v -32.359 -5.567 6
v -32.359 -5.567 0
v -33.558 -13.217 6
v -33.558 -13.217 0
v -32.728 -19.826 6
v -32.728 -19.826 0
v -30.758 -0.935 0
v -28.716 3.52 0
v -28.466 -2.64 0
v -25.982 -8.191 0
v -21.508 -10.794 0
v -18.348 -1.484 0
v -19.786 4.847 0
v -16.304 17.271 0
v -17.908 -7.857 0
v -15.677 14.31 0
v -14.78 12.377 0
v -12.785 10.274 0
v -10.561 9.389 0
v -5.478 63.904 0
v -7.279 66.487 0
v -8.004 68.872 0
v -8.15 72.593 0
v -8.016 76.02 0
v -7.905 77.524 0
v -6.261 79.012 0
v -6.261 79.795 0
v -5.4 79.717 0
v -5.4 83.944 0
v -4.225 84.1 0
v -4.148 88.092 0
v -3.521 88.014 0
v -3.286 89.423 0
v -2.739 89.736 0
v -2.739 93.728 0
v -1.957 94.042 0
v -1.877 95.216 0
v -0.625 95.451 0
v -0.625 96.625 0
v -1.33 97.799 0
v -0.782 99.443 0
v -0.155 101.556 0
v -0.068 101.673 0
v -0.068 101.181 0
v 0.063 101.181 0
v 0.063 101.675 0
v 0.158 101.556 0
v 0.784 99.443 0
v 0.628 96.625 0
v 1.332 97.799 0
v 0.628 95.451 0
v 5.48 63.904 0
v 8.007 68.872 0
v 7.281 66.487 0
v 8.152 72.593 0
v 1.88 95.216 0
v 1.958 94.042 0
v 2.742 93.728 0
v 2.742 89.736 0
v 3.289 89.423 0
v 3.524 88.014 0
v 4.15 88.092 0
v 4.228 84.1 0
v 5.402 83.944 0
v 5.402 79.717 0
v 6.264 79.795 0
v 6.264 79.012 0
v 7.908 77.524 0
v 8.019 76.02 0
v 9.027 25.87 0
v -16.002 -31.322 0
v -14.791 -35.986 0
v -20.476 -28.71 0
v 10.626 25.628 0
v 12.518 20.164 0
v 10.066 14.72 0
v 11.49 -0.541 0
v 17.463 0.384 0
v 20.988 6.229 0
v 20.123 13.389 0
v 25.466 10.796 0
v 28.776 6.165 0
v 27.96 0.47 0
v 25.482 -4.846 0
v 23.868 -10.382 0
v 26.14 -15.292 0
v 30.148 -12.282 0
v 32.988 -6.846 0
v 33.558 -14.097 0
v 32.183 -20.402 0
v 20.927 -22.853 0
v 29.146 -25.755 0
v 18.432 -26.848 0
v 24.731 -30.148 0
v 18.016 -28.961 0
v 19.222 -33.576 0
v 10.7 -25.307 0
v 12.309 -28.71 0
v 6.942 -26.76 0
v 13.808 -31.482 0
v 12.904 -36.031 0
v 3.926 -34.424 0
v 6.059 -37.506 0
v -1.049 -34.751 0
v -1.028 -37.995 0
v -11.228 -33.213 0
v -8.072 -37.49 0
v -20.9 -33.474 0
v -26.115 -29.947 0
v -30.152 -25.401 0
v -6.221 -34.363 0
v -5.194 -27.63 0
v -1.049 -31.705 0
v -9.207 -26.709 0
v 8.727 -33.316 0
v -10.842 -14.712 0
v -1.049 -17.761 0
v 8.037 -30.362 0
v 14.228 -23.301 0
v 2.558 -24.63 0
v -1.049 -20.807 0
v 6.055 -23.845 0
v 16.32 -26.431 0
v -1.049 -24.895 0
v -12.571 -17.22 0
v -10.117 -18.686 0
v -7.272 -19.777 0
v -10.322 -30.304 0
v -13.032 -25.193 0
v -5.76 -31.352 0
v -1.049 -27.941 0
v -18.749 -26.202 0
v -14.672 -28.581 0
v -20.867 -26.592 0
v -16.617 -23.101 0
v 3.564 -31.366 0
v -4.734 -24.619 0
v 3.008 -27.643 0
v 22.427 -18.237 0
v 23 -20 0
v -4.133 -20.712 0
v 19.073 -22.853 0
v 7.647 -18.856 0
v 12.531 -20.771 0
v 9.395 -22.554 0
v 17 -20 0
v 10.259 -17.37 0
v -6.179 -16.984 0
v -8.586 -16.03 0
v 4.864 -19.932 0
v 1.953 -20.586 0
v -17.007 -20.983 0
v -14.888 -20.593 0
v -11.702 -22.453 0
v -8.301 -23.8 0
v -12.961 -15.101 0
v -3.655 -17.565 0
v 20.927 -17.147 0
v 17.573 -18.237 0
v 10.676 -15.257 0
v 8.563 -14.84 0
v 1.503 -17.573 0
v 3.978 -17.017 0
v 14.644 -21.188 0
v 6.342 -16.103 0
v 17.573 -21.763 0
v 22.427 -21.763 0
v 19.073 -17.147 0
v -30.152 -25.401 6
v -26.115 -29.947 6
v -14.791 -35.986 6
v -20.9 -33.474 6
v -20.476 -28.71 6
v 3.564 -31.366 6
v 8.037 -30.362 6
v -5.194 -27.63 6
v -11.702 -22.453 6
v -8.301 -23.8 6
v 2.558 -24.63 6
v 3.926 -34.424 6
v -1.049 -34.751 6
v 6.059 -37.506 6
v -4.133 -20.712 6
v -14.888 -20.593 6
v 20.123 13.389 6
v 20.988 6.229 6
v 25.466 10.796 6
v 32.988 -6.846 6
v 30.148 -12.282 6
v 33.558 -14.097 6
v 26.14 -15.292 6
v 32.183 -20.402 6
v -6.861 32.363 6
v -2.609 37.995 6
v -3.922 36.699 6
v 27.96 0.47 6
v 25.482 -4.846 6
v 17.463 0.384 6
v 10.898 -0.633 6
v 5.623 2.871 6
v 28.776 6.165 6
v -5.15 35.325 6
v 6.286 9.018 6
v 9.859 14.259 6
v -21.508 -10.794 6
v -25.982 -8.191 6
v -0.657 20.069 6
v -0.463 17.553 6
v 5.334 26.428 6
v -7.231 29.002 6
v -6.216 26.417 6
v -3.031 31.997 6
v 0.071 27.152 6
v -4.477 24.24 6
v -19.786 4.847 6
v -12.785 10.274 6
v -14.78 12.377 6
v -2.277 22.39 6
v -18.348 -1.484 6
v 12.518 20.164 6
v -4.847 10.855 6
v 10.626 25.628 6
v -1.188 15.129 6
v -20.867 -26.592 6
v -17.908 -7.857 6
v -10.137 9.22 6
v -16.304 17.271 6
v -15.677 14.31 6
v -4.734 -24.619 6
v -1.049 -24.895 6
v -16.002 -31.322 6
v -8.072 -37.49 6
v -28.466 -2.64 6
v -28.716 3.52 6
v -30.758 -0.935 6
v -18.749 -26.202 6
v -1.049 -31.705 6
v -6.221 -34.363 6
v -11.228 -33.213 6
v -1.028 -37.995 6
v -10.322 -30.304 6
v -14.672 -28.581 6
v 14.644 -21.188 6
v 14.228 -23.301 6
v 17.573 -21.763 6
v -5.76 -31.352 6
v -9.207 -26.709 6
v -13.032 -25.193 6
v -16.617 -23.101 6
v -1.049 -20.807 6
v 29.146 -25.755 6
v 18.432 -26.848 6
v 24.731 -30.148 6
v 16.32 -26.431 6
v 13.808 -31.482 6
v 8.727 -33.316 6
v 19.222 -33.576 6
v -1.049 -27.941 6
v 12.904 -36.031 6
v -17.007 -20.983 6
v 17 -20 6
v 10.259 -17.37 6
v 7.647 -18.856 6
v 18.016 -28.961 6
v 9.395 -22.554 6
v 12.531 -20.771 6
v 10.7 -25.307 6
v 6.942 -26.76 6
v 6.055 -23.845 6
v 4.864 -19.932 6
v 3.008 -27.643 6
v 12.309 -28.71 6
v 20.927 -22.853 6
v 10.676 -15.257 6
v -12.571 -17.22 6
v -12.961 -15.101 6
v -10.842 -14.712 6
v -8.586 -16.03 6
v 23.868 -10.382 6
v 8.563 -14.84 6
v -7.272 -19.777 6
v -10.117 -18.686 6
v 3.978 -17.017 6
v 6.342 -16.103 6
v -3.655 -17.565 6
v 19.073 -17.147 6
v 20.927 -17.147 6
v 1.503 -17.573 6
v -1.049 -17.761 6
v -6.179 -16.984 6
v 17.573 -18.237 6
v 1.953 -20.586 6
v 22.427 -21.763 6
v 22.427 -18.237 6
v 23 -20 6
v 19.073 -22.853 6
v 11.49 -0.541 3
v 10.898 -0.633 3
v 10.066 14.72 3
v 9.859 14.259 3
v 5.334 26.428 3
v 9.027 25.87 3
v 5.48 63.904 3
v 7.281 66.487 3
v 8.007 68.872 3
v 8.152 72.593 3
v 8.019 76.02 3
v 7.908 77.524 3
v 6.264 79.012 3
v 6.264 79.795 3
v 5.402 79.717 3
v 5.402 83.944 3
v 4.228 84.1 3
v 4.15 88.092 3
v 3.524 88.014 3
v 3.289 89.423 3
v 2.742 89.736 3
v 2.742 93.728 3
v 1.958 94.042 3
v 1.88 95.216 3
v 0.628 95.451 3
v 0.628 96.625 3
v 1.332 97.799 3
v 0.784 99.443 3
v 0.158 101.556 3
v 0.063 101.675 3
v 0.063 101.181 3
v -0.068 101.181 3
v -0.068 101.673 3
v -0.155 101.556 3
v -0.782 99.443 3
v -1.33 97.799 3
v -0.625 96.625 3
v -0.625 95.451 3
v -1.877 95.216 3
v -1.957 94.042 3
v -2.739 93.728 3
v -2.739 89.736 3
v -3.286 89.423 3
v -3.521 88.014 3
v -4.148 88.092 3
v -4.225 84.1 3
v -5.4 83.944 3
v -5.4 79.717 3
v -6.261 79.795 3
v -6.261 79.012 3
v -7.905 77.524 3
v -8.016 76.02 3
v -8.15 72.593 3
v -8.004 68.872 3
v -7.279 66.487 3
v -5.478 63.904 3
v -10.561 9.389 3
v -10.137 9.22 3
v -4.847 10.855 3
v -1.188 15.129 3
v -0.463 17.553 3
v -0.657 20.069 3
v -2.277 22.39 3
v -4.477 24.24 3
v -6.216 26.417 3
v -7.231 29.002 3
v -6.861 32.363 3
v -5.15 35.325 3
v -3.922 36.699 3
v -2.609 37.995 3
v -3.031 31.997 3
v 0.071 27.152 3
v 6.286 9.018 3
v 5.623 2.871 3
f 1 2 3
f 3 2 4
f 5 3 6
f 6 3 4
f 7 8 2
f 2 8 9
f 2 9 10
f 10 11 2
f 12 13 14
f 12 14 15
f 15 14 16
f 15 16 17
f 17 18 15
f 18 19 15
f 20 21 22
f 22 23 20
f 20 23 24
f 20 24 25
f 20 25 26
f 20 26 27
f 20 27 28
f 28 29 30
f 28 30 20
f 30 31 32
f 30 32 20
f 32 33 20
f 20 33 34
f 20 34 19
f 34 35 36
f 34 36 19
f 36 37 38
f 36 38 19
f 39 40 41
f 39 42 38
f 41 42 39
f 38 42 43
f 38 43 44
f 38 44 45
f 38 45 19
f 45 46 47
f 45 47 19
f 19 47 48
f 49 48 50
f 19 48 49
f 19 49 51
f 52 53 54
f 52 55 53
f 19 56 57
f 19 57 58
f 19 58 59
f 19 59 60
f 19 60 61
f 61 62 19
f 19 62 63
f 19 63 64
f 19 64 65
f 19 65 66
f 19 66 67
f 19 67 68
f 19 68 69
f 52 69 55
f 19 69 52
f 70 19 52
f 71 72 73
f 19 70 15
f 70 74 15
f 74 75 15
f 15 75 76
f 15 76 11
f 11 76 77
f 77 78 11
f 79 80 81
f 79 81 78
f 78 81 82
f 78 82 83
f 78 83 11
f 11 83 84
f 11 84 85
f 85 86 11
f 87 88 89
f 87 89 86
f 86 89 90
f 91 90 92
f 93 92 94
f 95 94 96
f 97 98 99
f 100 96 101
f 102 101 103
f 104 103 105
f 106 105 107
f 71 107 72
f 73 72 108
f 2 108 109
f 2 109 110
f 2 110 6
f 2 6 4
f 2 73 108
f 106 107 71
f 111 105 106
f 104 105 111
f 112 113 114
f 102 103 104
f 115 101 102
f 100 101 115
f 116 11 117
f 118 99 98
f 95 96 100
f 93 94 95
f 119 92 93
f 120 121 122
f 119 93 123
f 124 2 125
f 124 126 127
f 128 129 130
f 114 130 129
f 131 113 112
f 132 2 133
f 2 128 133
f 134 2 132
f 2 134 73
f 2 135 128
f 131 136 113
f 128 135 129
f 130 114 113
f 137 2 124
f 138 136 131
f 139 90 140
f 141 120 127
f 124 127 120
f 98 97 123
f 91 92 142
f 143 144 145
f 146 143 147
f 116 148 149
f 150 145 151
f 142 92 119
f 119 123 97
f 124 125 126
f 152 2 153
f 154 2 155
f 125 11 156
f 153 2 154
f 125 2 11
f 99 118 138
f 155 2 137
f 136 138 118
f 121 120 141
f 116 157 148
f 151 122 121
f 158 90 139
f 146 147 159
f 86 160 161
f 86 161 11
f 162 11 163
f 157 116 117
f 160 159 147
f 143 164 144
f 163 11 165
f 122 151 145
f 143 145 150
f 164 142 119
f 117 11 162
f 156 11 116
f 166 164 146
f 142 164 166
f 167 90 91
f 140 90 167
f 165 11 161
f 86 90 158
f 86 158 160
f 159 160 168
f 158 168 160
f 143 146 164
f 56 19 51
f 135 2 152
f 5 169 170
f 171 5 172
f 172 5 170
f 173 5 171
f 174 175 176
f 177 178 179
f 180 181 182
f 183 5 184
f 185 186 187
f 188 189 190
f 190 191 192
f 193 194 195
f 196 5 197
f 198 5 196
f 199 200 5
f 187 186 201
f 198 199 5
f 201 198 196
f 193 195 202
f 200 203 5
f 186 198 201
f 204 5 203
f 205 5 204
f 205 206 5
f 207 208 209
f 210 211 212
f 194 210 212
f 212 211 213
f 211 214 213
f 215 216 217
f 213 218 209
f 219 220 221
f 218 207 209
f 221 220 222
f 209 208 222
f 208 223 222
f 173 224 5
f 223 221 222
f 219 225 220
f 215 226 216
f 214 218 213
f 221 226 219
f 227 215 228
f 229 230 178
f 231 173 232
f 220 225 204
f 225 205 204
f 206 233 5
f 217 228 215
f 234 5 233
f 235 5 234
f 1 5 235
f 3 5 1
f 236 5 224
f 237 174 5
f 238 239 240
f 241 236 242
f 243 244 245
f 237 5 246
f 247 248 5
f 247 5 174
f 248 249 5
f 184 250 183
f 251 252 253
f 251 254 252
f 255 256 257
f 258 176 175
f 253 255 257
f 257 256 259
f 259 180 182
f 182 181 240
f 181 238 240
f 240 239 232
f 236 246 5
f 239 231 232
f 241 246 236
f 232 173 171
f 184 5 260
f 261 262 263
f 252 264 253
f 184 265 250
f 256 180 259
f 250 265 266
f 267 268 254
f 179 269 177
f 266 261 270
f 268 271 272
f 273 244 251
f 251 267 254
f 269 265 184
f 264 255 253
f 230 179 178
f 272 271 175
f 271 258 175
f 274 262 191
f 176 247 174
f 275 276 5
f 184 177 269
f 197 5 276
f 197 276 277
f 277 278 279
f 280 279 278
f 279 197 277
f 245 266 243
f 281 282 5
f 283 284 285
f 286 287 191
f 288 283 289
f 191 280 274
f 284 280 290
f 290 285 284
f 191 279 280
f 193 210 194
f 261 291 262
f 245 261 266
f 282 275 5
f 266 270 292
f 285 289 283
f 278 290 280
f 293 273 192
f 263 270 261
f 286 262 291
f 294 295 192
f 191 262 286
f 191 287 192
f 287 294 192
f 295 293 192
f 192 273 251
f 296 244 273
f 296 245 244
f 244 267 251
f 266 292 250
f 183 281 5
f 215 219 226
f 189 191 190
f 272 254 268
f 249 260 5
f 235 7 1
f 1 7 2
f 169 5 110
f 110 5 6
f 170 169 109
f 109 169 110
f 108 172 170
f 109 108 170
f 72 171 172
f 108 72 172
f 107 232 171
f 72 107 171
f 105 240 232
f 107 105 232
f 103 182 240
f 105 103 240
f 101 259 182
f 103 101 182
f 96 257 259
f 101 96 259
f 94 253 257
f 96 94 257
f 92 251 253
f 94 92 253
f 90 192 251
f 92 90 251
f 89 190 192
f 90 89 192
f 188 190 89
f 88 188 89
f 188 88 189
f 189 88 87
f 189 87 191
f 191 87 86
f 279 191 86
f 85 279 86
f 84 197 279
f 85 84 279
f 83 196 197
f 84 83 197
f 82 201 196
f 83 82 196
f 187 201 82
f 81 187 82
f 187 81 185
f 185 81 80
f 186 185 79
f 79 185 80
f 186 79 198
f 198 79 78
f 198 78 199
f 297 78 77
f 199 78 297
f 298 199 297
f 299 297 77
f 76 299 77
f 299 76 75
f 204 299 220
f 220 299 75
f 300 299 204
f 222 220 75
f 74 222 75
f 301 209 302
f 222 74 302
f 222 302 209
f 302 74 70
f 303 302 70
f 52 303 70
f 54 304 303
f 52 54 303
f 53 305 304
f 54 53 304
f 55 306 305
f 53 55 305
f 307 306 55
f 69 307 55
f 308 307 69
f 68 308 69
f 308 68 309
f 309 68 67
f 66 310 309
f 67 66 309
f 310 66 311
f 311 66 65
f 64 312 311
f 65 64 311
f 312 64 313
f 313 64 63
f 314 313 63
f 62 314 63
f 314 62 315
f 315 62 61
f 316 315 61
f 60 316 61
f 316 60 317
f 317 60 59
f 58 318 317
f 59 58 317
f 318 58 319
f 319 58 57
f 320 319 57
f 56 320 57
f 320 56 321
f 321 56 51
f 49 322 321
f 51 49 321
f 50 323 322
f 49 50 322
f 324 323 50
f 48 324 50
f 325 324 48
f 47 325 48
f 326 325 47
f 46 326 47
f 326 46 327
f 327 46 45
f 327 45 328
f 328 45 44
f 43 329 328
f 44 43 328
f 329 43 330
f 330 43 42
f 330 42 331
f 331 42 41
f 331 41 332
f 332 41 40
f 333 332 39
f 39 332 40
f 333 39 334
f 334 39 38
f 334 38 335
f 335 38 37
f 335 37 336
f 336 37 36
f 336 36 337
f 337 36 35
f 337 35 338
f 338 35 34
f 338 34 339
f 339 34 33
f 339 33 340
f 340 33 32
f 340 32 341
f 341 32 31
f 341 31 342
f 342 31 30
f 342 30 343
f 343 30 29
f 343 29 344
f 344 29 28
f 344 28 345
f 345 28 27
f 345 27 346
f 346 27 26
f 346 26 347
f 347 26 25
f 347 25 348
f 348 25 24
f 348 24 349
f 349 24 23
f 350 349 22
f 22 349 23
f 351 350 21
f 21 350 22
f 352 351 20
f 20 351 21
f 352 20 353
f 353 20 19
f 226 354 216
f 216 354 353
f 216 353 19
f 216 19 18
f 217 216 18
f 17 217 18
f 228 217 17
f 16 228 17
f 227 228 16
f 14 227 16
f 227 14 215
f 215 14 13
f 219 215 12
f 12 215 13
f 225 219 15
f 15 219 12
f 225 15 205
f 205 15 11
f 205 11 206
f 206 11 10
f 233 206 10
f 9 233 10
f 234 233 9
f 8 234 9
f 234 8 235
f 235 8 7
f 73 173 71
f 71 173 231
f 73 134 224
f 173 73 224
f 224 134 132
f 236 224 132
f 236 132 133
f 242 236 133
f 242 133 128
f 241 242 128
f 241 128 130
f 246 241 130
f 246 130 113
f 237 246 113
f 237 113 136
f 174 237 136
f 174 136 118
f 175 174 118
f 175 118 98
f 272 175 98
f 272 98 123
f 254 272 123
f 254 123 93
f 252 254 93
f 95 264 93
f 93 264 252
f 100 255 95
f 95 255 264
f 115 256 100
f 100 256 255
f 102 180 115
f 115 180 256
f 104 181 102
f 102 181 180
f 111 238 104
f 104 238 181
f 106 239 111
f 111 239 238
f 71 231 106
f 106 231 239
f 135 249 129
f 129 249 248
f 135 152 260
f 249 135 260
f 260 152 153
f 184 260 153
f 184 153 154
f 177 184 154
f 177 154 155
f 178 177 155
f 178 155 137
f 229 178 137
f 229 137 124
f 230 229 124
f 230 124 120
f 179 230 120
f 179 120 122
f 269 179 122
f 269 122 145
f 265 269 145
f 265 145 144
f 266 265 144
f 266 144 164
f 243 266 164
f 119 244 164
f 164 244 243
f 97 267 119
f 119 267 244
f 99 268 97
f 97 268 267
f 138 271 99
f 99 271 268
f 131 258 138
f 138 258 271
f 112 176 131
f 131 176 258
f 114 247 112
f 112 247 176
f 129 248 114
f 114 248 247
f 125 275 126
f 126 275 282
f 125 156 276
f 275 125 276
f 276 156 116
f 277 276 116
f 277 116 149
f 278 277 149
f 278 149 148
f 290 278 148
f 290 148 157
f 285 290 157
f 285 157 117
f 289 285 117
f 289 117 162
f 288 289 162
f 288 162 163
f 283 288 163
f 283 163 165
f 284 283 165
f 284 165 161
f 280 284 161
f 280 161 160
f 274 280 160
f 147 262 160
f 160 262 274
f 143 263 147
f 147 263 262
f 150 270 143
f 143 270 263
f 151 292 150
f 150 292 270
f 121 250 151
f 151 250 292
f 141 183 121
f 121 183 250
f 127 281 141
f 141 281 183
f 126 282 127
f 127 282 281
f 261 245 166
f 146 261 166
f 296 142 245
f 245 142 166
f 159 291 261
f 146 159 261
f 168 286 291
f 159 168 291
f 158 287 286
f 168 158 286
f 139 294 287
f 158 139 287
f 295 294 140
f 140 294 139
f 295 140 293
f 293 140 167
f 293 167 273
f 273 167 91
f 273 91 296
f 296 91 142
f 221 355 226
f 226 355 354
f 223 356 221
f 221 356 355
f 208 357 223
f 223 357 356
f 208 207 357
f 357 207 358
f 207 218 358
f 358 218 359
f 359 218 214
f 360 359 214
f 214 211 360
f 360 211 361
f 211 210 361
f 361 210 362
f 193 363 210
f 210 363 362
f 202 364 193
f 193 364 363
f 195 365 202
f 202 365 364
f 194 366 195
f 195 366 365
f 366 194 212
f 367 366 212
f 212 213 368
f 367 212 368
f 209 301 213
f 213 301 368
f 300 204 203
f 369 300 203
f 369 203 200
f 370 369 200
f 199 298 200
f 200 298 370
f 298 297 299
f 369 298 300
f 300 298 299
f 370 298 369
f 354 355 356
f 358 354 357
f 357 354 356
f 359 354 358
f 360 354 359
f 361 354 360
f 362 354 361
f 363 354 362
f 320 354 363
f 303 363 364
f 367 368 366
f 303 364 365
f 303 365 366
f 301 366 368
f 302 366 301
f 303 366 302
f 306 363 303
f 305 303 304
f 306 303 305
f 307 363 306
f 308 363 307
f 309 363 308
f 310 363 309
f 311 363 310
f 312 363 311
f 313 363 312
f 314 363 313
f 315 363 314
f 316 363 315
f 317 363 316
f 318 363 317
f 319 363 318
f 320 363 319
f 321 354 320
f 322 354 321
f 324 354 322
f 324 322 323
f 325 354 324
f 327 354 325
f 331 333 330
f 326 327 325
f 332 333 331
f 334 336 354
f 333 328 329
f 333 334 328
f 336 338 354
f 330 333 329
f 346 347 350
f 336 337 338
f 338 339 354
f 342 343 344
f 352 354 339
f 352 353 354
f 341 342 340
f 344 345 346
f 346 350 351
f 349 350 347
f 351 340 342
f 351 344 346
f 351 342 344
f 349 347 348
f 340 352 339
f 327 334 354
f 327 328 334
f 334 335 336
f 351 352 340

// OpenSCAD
// Module names are of the form poly_<inkscape-path-id>().  As a result,
// you can associate a polygon in this OpenSCAD program with the corresponding
// SVG element in the Inkscape document by looking for the XML element with
// the attribute id="inkscape-path-id".

// fudge value is used to ensure that subtracted solids are a tad taller
// in the z dimension than the polygon being subtracted from.  This helps
// keep the resulting .stl file manifold.
fudge = 0.1;

module flame(h)
{
  scale([25.4/90, -25.4/90, 1]) union()
  {
    difference()
    {
       linear_extrude(height=h)
         polygon([[116.885926,24.259297],[106.823426,43.519297],[92.620926,54.185547],[84.571707,36.785391],[90.289676,17.171797],[99.072019,-1.666328],[101.962176,-21.843203],[90.232019,-38.254616],[71.300926,-47.440703],[74.367957,-22.072578],[61.877176,-1.361953],[38.614207,2.243203],[19.923426,-10.174453],[22.271707,-31.953353],[34.933426,-50.523203],[44.353582,-71.445703],[37.653426,-90.808203],[18.900613,-93.642266],[0.250926,-96.208203],[-10.739699,-113.375853],[-9.242824,-134.628203],[-13.896262,-130.035853],[-18.247824,-125.166953],[-24.309231,-114.670853],[-25.620324,-102.761953],[-22.025012,-93.603516],[-15.862824,-85.890703],[-8.068762,-79.333666],[-2.327824,-71.110703],[-1.640324,-62.196641],[-4.207824,-53.606953],[-17.174543,-38.462416],[-35.919074,-32.669453],[-45.300012,-36.404453],[-52.369074,-43.855703],[-55.547981,-50.702728],[-57.771574,-61.195703],[-70.107824,-17.175703],[-65.013287,5.258359],[-63.454074,27.840547],[-76.209537,38.247578],[-92.061574,29.024297],[-100.862349,9.354922],[-101.747824,-12.474453],[-108.985012,3.313672],[-114.656574,19.724297],[-118.906637,46.832397],[-115.965349,70.250408],[-106.838824,90.002643],[-92.533174,106.113418],[-74.054487,118.607047],[-52.408874,127.507844],[-28.602431,132.840124],[-3.641262,134.628203],[21.468529,132.896393],[45.720843,127.669011],[68.109574,118.970371],[87.628621,106.824785],[103.271882,91.256571],[114.033254,72.290042],[118.906637,49.949512]]);
       translate([0, 0, -fudge])
         linear_extrude(height=h+2*fudge)
           polygon([[63.834676,102.616797],[48.924734,111.549099],[30.922081,118.047321],[13.911339,121.974062],[-3.716574,123.134297],[-22.041574,121.759043],[-39.783449,117.683203],[-56.701262,110.981660],[-72.554074,101.729297],[-73.939074,94.223047],[-66.431574,92.841797],[-51.988214,101.270547],[-36.575012,107.375234],[-20.411339,111.087891],[-3.716574,112.340547],[12.627293,111.139922],[28.475926,107.581484],[43.613933,101.730391],[57.825926,93.651797],[65.312176,95.129297]]);
       translate([0, 0, -fudge])
         linear_extrude(height=h+2*fudge)
           polygon([[-60.260324,74.349297],[-52.754074,72.966797],[-41.464192,79.557031],[-29.413762,84.329922],[-16.774113,87.232499],[-3.716574,88.211797],[9.062167,87.272792],[21.453923,84.489969],[33.289804,79.914624],[44.400926,73.598047],[51.888426,75.076797],[50.414676,82.563047],[37.912644,89.670312],[24.596863,94.817734],[10.657176,97.948125],[-3.716574,99.004297],[-18.403352,97.902422],[-32.621731,94.636797],[-46.178469,89.267422],[-58.880324,81.854297],[-60.260324,74.349297]]);
       translate([0, 0, -fudge])
         linear_extrude(height=h+2*fudge)
           polygon([[-45.924074,53.508047],[-38.416574,52.128047],[-30.421964,56.797734],[-21.892512,60.180234],[-12.950091,62.237578],[-3.716574,62.931797],[5.324441,62.267032],[14.094051,60.296797],[22.472723,57.057188],[30.340926,52.584297],[37.828426,54.060547],[36.352176,61.548047],[27.093978,66.812282],[17.236208,70.624798],[6.919234,72.943313],[-3.716574,73.725547],[-14.645933,73.388617],[-25.767133,70.076664],[-35.848676,66.212362],[-44.544074,61.014297]]);
    }
  }
}

module tower(h)
{
  scale([25.4/90, -25.4/90, 1]) union()
  {
    linear_extrude(height=h)
      polygon([[44.381250,200.725625],[19.417500,-66.984375],[25.800000,-76.135625],[28.370489,-84.586725],[28.886094,-97.770313],[28.413340,-109.913750],[28.018750,-115.244375],[22.196250,-120.515625],[22.196250,-123.288125],[19.142500,-123.011875],[19.142500,-137.990625],[14.981250,-138.543125],[14.706250,-152.689375],[12.486250,-152.413125],[11.653750,-157.404375],[9.715000,-158.514375],[9.715000,-172.659375],[6.937500,-173.769375],[6.661250,-177.929375],[2.223750,-178.763125],[2.223750,-182.923125],[4.721250,-187.084375],[2.777500,-192.908125],[0.560000,-200.396875],[0.223750,-200.815625],[0.223750,-199.068125],[-0.240000,-199.068125],[-0.240000,-200.810625],[-0.550000,-200.396875],[-2.771250,-192.908125],[-4.711250,-187.084375],[-2.213750,-182.923125],[-2.213750,-178.763125],[-6.651250,-177.929375],[-6.932500,-173.769375],[-9.706250,-172.659375],[-9.706250,-158.514375],[-11.643750,-157.404375],[-12.476250,-152.413125],[-14.696250,-152.689375],[-14.971250,-138.543125],[-19.132500,-137.990625],[-19.132500,-123.011875],[-22.186250,-123.288125],[-22.186250,-120.515625],[-28.010000,-115.244375],[-28.404395,-109.913750],[-28.876719,-97.770313],[-28.360684,-84.586713],[-25.790000,-76.135625],[-19.412500,-66.984375],[-44.381250,200.815625]]);
  }
}


difference()
{
	union()
	{
		translate([0,45,0]) tower(3);
		flame(6);
	}
	translate([20,-20,-1])cylinder(h=8, r=3);
}
